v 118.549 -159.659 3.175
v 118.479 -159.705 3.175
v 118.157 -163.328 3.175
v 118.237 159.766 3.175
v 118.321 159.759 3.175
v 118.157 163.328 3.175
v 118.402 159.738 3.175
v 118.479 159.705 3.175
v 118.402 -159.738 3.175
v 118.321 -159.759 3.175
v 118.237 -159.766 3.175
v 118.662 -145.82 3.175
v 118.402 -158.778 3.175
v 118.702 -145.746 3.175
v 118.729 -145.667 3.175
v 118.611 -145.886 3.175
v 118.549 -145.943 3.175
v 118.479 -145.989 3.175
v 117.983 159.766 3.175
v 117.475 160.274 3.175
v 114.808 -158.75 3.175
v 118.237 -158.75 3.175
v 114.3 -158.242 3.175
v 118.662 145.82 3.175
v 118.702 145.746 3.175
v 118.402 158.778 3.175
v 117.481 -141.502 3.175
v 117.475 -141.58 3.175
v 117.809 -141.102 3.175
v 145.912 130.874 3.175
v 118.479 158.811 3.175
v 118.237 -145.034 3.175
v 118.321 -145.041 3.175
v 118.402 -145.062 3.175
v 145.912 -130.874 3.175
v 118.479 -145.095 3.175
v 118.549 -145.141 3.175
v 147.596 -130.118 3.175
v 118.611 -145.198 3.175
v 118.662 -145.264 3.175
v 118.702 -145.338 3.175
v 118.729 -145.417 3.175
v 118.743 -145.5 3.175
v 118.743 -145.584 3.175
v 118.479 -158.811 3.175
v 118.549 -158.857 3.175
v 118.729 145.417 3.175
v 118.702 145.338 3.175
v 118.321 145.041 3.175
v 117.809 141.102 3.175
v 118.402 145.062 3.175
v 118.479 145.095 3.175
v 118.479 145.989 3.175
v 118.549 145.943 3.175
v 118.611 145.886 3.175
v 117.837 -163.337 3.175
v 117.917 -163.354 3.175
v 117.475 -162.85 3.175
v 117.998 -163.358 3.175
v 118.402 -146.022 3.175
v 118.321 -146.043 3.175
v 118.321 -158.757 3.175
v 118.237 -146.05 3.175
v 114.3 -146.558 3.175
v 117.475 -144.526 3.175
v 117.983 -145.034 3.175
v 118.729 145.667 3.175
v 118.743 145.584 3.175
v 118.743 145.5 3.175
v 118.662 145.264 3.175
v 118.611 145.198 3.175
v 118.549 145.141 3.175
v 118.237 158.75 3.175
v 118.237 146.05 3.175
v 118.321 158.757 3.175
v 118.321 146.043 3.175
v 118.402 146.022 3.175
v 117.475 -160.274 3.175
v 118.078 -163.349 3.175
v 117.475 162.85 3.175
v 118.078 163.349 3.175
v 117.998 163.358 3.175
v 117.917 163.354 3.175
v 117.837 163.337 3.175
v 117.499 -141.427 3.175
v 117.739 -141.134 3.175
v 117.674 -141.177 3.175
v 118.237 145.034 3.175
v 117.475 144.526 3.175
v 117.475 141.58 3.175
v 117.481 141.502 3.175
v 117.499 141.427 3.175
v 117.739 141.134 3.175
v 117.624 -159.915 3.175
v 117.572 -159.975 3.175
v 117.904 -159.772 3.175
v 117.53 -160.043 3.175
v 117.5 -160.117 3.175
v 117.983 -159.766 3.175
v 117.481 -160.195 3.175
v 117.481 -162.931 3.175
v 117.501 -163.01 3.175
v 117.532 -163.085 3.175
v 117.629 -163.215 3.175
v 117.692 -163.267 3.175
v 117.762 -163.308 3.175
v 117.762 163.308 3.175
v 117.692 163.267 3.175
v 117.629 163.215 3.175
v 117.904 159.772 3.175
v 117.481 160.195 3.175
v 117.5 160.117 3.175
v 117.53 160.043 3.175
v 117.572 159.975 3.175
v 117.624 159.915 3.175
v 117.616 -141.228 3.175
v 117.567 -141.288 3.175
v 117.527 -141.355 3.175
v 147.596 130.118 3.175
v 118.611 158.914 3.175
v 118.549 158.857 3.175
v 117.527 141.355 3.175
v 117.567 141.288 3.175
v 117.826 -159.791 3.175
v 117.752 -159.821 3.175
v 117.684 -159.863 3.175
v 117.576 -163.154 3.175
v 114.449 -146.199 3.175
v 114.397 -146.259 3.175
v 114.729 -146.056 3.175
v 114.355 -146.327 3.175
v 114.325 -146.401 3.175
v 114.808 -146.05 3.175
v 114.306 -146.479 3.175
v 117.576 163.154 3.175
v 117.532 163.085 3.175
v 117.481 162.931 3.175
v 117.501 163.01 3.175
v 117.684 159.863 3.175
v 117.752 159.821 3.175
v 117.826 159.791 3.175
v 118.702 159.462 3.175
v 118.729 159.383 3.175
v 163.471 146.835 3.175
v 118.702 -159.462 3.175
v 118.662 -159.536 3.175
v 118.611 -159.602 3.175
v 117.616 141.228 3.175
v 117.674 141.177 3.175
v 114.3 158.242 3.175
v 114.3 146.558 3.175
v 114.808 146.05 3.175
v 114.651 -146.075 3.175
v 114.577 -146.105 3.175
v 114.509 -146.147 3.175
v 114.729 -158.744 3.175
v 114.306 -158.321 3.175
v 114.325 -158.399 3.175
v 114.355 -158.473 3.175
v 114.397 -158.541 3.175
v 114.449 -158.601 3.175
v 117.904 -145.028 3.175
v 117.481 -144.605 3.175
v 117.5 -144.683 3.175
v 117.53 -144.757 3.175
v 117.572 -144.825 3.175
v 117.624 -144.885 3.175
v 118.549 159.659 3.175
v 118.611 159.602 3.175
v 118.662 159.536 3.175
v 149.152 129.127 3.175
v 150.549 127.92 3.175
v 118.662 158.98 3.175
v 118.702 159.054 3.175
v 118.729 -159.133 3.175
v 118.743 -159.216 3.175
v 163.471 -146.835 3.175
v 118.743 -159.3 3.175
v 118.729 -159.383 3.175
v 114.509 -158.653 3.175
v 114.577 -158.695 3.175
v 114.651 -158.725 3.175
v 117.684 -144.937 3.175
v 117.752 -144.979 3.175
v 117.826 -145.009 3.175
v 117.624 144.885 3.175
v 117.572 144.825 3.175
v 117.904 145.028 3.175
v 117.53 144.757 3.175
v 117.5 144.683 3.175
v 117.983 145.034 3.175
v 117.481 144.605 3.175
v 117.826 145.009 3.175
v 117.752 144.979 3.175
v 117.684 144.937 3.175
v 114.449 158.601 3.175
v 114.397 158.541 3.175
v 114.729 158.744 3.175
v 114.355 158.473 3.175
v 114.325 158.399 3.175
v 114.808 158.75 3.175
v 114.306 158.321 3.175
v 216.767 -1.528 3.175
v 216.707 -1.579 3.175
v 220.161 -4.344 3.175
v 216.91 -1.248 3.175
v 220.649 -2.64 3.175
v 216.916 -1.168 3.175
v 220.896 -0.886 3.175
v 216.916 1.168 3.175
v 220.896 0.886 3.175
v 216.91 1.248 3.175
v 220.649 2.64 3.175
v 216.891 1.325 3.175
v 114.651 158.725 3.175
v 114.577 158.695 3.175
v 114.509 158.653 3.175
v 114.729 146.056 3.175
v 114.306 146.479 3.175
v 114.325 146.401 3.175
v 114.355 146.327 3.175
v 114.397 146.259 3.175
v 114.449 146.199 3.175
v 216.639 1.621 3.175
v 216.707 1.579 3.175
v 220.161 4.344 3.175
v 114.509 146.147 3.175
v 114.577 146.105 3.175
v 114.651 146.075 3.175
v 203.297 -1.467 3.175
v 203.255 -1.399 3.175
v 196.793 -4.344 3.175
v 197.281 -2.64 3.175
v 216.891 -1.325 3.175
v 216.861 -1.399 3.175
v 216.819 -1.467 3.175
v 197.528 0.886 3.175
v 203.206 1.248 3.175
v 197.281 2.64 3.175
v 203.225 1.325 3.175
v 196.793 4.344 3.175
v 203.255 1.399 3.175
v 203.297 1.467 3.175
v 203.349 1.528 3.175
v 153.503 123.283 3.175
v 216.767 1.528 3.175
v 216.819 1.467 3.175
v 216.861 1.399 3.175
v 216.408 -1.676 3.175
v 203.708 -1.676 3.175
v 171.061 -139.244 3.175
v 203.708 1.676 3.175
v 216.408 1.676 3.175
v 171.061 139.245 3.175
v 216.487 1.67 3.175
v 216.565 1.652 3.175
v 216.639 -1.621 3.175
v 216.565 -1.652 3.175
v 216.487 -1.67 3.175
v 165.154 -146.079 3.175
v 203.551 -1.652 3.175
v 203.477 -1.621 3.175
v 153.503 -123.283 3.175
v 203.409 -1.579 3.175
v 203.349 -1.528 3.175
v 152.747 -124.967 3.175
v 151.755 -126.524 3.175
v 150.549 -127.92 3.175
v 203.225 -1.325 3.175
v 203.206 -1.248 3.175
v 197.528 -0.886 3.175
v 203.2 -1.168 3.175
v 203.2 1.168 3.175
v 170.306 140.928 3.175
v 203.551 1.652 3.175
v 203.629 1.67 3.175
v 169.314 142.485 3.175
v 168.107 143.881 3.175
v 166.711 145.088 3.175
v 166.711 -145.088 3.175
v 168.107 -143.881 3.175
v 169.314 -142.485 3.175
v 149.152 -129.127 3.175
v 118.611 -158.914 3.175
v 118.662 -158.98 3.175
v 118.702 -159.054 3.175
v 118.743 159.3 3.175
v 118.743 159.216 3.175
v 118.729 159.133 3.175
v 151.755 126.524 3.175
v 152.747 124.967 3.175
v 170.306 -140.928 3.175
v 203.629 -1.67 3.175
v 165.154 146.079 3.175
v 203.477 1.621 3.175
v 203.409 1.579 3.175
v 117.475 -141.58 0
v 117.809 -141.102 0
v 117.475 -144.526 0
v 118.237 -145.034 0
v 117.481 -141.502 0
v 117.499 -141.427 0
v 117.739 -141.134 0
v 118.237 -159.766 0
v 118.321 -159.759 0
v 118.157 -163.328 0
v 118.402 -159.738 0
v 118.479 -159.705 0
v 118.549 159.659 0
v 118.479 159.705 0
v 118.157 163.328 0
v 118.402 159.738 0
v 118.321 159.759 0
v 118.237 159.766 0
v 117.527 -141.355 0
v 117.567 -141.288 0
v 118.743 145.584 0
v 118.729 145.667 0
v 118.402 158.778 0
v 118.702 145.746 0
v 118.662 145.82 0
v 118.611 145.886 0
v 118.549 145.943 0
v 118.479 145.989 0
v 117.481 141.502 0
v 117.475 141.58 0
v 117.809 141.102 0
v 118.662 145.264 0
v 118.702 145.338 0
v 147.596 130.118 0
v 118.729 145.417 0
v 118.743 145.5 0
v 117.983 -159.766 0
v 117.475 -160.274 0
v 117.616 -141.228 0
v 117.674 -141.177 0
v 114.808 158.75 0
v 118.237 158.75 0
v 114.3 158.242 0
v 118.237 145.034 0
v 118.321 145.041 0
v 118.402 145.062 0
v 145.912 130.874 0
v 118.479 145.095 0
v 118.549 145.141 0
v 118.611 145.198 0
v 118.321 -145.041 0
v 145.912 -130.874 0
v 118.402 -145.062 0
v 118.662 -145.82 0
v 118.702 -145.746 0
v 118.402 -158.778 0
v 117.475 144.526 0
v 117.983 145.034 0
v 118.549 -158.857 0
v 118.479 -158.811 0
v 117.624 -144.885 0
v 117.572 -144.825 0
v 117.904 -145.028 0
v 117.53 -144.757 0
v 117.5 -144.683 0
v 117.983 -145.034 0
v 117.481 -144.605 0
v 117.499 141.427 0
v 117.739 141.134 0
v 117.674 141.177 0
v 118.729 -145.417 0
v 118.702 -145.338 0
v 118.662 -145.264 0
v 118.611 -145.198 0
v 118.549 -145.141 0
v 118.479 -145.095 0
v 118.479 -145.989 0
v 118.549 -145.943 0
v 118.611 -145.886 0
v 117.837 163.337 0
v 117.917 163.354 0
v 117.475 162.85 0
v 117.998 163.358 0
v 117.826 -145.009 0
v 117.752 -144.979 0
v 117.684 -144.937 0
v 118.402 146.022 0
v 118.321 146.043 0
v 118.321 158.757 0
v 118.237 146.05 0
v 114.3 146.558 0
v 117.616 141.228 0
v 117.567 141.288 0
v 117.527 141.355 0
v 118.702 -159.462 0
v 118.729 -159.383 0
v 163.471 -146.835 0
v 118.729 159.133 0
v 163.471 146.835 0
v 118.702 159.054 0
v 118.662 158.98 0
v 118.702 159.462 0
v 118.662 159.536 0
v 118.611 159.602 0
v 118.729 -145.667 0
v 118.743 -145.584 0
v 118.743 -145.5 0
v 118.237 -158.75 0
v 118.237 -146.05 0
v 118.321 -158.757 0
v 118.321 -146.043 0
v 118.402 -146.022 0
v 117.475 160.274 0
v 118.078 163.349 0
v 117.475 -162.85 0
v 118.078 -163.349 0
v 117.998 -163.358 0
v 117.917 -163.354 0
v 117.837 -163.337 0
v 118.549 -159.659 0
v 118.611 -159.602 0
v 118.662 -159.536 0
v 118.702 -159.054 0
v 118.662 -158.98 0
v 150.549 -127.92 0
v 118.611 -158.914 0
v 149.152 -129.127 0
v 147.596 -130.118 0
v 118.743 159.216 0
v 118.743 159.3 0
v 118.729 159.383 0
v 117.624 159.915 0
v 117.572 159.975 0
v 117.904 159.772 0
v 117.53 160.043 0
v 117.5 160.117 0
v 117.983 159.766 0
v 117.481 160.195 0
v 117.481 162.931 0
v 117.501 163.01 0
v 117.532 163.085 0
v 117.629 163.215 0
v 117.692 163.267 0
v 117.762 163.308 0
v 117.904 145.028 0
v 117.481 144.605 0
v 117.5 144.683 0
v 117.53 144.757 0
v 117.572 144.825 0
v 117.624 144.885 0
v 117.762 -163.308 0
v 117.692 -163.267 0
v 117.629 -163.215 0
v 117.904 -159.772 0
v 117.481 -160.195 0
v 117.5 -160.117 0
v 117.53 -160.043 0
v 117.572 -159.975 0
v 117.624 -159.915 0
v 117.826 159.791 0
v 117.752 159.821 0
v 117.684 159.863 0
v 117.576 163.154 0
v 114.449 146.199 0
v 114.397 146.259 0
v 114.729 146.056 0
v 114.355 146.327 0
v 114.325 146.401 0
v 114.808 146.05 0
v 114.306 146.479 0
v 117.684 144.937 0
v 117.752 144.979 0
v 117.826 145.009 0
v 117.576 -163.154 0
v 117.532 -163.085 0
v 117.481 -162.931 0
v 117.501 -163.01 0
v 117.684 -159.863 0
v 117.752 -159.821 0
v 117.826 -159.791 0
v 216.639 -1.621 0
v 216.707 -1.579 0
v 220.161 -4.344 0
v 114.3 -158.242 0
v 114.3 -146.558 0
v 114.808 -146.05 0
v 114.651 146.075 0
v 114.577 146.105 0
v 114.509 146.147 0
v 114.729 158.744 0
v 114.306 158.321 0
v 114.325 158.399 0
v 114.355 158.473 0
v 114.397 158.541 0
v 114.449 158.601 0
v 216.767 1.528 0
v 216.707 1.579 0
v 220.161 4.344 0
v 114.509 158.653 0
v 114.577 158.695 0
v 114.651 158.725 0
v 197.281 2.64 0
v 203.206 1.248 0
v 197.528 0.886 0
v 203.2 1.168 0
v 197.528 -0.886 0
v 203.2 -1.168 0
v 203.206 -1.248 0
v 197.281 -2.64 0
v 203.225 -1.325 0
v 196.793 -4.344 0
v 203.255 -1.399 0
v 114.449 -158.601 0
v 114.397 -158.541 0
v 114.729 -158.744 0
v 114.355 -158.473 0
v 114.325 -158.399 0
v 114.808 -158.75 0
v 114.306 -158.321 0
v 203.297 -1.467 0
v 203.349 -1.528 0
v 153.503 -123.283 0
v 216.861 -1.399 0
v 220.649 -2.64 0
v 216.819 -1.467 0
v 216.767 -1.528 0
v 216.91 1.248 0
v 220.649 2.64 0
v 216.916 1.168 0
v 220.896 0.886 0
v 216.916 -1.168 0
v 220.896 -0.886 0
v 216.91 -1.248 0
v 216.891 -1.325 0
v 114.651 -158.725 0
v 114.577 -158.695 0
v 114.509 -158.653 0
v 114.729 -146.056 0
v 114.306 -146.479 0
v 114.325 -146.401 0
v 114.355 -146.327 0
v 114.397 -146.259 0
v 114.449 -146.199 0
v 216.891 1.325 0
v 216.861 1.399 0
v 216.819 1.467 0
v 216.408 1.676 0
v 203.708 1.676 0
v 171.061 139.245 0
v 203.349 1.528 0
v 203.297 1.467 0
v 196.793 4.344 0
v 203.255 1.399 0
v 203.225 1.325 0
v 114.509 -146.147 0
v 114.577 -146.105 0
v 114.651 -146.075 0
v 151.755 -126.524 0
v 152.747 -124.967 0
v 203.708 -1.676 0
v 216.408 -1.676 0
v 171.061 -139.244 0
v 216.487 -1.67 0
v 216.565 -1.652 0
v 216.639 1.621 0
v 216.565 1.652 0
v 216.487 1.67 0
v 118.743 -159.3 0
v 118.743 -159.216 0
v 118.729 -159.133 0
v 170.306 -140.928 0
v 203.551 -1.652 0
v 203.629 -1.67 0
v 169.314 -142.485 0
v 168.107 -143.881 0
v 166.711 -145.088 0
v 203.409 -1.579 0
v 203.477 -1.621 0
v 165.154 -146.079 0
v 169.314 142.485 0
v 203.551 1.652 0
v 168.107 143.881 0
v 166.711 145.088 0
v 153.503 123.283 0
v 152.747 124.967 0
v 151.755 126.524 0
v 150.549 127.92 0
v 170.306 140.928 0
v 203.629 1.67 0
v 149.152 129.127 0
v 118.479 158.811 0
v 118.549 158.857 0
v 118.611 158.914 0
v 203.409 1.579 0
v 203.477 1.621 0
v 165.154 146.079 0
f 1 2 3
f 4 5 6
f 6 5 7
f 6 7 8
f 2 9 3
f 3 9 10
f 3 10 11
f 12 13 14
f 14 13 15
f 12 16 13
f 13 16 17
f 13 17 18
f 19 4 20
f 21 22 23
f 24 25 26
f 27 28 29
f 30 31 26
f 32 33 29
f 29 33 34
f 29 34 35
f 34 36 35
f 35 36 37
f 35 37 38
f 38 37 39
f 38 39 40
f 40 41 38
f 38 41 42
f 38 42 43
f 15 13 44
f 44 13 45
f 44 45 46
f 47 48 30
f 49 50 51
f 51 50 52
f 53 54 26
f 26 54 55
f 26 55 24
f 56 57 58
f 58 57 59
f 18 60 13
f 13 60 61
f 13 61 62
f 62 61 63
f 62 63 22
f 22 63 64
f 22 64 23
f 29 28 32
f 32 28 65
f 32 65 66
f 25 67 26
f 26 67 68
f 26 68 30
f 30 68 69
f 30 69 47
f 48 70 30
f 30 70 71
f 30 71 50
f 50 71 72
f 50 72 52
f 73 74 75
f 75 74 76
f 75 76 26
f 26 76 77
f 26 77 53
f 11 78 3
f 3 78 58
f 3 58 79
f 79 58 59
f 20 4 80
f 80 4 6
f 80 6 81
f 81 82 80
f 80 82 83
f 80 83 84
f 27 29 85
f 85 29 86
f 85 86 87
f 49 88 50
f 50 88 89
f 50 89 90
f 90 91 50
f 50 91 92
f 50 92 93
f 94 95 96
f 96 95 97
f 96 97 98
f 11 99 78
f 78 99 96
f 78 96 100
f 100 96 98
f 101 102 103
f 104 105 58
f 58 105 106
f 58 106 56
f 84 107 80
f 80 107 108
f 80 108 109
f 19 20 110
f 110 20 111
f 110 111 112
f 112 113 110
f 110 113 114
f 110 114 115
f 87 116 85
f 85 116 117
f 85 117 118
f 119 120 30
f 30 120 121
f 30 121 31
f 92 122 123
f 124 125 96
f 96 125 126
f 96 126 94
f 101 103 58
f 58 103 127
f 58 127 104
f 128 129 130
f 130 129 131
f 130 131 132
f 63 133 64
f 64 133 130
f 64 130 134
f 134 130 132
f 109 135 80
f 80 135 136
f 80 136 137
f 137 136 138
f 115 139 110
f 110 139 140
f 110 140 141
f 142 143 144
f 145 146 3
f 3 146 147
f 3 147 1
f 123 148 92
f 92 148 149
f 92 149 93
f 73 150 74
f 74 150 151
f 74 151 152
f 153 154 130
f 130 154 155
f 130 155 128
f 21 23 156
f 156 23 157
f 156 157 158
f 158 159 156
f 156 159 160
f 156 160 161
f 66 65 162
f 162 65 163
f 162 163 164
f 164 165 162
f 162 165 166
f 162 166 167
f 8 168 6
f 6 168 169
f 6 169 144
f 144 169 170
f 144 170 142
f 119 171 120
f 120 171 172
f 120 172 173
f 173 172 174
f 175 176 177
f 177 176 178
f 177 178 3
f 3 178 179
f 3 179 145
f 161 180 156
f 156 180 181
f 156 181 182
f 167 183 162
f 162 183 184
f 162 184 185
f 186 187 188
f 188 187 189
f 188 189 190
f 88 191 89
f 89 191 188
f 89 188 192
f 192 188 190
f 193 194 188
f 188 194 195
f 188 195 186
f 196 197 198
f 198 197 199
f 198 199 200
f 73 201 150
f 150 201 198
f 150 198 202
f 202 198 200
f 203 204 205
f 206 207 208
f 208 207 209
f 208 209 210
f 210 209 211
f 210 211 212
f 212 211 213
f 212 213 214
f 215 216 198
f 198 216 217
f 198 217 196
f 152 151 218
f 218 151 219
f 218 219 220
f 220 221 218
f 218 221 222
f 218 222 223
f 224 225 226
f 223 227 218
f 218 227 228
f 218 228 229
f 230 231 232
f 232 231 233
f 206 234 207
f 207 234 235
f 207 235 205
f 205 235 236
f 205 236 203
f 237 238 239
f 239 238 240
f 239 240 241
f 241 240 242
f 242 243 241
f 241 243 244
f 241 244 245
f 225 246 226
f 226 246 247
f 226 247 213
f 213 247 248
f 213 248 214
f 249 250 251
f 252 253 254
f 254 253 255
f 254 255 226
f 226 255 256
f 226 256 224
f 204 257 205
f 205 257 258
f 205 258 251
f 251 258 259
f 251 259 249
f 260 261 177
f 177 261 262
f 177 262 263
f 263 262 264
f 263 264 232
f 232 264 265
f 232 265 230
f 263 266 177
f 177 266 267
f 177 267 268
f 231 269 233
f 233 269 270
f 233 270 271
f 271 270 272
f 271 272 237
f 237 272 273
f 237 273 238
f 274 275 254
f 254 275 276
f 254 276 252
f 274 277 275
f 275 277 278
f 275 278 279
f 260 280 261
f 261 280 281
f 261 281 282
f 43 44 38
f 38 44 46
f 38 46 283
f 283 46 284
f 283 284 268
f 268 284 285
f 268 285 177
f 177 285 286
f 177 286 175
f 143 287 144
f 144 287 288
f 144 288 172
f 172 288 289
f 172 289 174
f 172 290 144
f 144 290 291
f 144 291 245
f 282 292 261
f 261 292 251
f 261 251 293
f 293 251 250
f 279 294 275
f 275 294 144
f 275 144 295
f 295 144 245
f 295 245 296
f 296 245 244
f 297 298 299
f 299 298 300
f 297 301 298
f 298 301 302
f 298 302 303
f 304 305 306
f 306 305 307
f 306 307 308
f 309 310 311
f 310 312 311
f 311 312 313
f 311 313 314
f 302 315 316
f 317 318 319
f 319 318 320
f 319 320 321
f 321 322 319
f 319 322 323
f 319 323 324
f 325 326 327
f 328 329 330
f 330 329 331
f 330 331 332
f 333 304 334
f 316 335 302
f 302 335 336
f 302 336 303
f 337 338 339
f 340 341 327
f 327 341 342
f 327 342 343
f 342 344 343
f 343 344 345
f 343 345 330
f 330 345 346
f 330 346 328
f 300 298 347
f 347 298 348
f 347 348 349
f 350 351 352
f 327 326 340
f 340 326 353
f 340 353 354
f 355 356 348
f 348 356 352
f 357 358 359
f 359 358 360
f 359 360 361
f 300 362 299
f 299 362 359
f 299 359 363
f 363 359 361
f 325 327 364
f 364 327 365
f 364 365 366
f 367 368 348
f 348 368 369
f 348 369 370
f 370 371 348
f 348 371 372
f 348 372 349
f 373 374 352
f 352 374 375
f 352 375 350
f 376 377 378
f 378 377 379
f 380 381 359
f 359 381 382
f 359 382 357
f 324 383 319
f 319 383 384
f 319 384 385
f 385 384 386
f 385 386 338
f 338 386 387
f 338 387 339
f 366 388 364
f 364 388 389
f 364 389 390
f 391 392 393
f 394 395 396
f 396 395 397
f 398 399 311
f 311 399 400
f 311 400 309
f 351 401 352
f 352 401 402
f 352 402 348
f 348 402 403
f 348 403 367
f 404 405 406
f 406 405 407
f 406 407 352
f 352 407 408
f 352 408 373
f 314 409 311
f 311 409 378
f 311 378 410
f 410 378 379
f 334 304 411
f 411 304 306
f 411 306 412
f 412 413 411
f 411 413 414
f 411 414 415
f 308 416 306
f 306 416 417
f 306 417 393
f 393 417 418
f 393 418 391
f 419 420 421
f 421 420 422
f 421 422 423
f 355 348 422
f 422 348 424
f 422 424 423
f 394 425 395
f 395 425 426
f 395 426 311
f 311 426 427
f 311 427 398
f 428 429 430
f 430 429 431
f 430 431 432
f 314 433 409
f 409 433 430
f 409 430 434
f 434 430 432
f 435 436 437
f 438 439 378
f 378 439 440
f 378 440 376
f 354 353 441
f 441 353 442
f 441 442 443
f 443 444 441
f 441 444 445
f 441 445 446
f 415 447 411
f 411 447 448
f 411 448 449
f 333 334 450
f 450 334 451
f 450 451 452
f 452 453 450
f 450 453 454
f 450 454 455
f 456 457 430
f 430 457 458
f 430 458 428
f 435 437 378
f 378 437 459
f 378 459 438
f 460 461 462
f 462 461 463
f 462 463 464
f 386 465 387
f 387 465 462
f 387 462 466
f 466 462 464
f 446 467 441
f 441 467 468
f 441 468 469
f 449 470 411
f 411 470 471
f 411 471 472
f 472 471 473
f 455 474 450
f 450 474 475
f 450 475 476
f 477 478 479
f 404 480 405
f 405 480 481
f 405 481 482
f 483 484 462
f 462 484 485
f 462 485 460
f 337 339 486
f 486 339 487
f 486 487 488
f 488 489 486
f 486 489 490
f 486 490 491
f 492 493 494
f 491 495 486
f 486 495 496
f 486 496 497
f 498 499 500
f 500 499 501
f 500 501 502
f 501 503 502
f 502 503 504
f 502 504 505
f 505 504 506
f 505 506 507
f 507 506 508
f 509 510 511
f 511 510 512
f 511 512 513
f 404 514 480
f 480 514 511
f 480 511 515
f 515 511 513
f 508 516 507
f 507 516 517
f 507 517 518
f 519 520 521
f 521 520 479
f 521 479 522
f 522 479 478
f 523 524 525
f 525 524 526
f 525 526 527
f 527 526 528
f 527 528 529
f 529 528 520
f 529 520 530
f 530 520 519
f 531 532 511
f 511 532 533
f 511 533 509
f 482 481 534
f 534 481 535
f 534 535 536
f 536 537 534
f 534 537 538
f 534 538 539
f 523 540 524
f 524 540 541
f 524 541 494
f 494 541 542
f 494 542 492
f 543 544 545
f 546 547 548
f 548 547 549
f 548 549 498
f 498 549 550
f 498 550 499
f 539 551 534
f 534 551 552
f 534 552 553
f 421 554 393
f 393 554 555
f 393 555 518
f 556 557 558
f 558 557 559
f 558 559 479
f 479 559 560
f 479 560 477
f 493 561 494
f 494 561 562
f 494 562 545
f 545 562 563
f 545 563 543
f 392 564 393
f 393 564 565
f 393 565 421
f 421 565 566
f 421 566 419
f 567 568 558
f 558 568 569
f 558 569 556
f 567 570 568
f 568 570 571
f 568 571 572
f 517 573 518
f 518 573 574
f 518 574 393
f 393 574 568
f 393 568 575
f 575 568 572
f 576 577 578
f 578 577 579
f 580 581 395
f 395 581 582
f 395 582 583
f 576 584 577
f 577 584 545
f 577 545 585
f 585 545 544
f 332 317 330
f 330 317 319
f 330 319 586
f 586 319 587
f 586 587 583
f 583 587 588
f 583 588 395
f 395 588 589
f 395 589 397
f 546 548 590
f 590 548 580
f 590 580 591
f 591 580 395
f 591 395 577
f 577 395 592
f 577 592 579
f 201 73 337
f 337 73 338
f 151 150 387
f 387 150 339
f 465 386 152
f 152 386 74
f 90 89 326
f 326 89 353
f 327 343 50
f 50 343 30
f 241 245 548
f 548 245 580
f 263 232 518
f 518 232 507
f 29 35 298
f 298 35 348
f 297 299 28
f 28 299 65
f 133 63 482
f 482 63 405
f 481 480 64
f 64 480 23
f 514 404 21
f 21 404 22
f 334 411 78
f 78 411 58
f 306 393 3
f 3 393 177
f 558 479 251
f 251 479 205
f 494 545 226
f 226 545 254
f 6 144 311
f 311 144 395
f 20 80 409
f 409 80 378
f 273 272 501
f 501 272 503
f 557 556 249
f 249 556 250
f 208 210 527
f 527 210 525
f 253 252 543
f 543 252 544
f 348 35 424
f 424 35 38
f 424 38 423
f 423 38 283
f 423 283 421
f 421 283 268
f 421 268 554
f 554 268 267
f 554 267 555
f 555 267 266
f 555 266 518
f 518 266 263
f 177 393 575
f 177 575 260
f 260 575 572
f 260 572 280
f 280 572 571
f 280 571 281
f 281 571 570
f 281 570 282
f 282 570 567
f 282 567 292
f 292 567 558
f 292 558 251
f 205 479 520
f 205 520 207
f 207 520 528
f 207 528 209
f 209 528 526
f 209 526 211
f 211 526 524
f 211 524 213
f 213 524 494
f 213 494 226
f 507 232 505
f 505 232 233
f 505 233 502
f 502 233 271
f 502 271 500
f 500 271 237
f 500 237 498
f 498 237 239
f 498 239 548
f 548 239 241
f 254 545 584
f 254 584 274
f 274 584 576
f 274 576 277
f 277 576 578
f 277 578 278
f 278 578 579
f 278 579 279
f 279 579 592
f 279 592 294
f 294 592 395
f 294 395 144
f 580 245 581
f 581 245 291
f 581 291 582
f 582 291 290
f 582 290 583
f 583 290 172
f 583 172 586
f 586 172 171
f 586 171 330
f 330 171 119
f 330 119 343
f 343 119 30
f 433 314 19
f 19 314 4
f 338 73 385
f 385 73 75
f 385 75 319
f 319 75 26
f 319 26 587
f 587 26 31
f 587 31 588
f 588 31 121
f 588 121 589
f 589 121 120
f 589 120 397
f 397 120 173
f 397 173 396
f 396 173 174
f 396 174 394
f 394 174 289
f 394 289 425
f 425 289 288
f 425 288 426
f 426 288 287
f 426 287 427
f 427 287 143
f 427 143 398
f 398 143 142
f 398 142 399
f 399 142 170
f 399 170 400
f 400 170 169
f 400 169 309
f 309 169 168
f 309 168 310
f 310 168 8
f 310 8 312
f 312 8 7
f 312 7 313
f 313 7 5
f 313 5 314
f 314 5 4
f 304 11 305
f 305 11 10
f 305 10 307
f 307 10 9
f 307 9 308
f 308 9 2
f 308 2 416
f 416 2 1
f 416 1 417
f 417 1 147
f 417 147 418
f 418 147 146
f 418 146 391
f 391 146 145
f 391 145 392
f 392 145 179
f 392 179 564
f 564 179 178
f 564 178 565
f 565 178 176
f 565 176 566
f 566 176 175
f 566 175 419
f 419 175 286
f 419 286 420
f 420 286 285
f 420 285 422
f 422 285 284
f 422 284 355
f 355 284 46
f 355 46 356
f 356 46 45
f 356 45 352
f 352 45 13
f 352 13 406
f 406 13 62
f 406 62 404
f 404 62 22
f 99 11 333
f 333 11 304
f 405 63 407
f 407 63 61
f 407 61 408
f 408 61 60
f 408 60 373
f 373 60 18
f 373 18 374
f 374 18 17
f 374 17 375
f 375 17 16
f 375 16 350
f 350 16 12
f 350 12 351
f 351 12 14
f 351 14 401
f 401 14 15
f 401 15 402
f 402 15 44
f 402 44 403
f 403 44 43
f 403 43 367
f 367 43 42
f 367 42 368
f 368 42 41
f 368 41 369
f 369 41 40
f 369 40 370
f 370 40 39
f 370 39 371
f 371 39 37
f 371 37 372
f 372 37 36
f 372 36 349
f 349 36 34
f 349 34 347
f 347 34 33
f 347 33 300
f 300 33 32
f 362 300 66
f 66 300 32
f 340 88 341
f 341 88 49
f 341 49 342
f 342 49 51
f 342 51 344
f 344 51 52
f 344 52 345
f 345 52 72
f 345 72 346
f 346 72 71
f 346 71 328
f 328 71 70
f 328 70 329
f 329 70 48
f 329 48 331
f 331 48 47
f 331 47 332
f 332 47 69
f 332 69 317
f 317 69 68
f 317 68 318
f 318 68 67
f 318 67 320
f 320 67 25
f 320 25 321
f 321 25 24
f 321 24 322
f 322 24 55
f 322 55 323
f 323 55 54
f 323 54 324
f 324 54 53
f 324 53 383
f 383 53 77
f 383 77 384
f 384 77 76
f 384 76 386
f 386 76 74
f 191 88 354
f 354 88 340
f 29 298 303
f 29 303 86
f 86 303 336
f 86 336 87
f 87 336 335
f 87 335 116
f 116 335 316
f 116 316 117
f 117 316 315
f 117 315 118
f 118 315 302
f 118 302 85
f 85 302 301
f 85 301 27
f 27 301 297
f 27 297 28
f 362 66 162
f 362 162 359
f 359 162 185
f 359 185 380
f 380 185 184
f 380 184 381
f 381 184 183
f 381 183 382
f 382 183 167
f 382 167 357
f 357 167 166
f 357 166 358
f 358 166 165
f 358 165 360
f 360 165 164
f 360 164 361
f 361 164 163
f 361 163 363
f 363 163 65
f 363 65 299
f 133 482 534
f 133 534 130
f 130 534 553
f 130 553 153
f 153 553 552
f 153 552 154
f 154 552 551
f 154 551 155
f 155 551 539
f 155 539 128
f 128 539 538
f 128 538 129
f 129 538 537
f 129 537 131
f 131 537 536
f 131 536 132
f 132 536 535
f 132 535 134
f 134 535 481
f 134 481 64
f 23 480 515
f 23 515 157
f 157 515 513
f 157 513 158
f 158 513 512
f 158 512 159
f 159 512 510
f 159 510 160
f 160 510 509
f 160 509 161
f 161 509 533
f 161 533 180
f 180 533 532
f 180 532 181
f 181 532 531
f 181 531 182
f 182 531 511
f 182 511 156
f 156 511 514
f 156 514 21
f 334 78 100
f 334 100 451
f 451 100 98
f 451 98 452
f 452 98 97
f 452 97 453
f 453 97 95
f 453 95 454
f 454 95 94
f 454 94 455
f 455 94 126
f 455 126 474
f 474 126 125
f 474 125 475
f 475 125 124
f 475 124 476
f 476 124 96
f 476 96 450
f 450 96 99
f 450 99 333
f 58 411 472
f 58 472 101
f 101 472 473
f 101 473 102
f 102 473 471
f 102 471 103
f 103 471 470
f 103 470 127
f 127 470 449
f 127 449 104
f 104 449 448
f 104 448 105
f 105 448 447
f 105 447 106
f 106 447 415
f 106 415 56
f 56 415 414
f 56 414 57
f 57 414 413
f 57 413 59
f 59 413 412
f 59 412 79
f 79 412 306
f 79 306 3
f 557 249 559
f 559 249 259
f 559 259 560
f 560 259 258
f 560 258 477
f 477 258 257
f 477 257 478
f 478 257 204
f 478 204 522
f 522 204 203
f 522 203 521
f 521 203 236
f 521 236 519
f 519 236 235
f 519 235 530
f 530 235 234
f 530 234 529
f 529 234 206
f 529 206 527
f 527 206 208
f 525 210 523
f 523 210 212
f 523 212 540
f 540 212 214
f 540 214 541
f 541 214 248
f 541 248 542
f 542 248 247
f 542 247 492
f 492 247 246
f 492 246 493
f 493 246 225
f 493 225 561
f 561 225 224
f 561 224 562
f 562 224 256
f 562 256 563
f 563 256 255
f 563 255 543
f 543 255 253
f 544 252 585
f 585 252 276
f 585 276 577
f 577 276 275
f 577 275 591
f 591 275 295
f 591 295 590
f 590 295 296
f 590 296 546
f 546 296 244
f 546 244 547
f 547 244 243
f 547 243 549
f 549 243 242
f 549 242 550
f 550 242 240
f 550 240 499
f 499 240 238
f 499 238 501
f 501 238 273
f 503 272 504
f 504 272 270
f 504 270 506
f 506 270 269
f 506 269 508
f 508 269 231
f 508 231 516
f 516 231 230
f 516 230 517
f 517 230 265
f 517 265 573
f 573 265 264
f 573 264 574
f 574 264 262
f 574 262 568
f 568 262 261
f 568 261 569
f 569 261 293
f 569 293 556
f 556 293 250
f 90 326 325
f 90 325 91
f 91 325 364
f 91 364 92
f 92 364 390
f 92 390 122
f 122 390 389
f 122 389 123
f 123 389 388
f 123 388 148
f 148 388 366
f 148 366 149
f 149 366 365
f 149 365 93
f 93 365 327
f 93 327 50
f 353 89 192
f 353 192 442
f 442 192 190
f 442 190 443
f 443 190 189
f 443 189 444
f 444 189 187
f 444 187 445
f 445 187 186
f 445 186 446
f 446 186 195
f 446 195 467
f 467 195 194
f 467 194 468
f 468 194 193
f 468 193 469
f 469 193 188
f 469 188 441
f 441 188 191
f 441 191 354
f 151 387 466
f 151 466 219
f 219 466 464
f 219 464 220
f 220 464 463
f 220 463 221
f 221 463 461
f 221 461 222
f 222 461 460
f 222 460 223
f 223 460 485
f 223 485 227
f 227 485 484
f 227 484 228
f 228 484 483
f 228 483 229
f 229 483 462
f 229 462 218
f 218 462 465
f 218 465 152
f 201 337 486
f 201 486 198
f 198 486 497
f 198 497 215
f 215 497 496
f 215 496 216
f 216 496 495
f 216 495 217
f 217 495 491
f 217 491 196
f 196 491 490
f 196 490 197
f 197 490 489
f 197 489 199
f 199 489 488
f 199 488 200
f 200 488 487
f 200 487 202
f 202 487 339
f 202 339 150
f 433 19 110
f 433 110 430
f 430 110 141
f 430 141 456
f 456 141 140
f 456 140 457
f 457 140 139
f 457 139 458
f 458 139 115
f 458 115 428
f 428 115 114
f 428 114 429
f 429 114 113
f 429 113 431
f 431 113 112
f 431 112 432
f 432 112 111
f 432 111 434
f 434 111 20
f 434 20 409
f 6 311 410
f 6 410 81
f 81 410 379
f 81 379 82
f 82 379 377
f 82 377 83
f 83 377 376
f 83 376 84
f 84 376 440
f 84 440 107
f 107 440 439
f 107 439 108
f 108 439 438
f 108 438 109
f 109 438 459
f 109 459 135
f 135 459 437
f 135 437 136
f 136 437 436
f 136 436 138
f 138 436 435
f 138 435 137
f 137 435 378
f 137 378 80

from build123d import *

# Parameters (mm, degrees)
SKETCH1_W           = 13.716
SKETCH1_H           = 3.3528
BOSS_EXTRUDE1_DEPTH = 3.175
FILLET1_R           = 12.7
CUT_EXTRUDE1_DEPTH  = 4.175
FILLET2_R           = 0.508


with BuildPart() as part:
    # Sketch1 → Boss-Extrude1 (new body)
    with BuildSketch(Plane.XY):
        Polygon((114.3, 158.75), (114.3, 146.05), (117.475, 146.05), (117.475, 141.224), (151.477068993, 128.848258983), (198.374, 0), (151.477068993, -128.848258983), (117.475, -141.224), (117.475, -146.05), (114.3, -146.05), (114.3, -158.75), (117.475, -158.75), (117.475, -163.576), (169.035670284, -144.809450758), (221.742, 0), (169.035670284, 144.809450758), (117.475, 163.576), (117.475, 158.75), align=None)
        with Locations((210.058, 0)):
            Rectangle(SKETCH1_W, SKETCH1_H, mode=Mode.SUBTRACT)
    extrude(amount=BOSS_EXTRUDE1_DEPTH)

    # Fillet1
    fillet1_edges = [part.edges().sort_by_distance(p)[0] for p in [
        (169.035670284, 144.809450758, 1.5875),
        (221.742, 0, 1.5875),
        (169.035670284, -144.809450758, 1.5875),
        (151.477068993, -128.848258983, 1.5875),
        (198.374, 0, 1.5875),
        (151.477068993, 128.848258983, 1.5875),
    ]]
    fillet(fillet1_edges, radius=FILLET1_R)

    # Sketch2 → Cut-Extrude1 (cut, through all)
    with BuildSketch(Plane.XY.offset(3.175)):
        with BuildLine():
            Line((117.475, 146.05), (118.237, 146.05))
            ThreePointArc((118.237, 146.05), (118.745, 145.542), (118.237, 145.034))
            Line((118.237, 145.034), (117.475, 145.034))
            Line((117.475, 145.034), (117.475, 146.05))
        make_face()
        with BuildLine():
            Line((117.475, 158.75), (118.237, 158.75))
            ThreePointArc((118.237, 158.75), (118.745, 159.258), (118.237, 159.766))
            Line((118.237, 159.766), (117.475, 159.766))
            Line((117.475, 159.766), (117.475, 158.75))
        make_face()
        with BuildLine():
            Line((117.475, -145.034), (117.475, -146.05))
            Line((117.475, -146.05), (118.237, -146.05))
            ThreePointArc((118.237, -146.05), (118.745, -145.542), (118.237, -145.034))
            Line((118.237, -145.034), (117.475, -145.034))
        make_face()
        with BuildLine():
            Line((117.475, -158.75), (117.475, -159.766))
            Line((117.475, -159.766), (118.237, -159.766))
            ThreePointArc((118.237, -159.766), (118.745, -159.258), (118.237, -158.75))
            Line((118.237, -158.75), (117.475, -158.75))
        make_face()
    extrude(amount=-CUT_EXTRUDE1_DEPTH, mode=Mode.SUBTRACT)

    # Fillet2
    fillet2_edges = [part.edges().sort_by_distance(p)[0] for p in [
        (117.475, 163.576, 1.5875),
        (117.475, -163.576, 1.5875),
        (114.3, -158.75, 1.5875),
        (114.3, -146.05, 1.5875),
        (117.475, -141.224, 1.5875),
        (117.475, 141.224, 1.5875),
        (114.3, 146.05, 1.5875),
        (114.3, 158.75, 1.5875),
        (117.475, 159.766, 1.5875),
        (117.475, -159.766, 1.5875),
        (117.475, -145.034, 1.5875),
        (117.475, 145.034, 1.5875),
        (203.2, 1.6764, 1.5875),
        (203.2, -1.6764, 1.5875),
        (216.916, -1.6764, 1.5875),
        (216.916, 1.6764, 1.5875),
    ]]
    fillet(fillet2_edges, radius=FILLET2_R)


solid = part.part
